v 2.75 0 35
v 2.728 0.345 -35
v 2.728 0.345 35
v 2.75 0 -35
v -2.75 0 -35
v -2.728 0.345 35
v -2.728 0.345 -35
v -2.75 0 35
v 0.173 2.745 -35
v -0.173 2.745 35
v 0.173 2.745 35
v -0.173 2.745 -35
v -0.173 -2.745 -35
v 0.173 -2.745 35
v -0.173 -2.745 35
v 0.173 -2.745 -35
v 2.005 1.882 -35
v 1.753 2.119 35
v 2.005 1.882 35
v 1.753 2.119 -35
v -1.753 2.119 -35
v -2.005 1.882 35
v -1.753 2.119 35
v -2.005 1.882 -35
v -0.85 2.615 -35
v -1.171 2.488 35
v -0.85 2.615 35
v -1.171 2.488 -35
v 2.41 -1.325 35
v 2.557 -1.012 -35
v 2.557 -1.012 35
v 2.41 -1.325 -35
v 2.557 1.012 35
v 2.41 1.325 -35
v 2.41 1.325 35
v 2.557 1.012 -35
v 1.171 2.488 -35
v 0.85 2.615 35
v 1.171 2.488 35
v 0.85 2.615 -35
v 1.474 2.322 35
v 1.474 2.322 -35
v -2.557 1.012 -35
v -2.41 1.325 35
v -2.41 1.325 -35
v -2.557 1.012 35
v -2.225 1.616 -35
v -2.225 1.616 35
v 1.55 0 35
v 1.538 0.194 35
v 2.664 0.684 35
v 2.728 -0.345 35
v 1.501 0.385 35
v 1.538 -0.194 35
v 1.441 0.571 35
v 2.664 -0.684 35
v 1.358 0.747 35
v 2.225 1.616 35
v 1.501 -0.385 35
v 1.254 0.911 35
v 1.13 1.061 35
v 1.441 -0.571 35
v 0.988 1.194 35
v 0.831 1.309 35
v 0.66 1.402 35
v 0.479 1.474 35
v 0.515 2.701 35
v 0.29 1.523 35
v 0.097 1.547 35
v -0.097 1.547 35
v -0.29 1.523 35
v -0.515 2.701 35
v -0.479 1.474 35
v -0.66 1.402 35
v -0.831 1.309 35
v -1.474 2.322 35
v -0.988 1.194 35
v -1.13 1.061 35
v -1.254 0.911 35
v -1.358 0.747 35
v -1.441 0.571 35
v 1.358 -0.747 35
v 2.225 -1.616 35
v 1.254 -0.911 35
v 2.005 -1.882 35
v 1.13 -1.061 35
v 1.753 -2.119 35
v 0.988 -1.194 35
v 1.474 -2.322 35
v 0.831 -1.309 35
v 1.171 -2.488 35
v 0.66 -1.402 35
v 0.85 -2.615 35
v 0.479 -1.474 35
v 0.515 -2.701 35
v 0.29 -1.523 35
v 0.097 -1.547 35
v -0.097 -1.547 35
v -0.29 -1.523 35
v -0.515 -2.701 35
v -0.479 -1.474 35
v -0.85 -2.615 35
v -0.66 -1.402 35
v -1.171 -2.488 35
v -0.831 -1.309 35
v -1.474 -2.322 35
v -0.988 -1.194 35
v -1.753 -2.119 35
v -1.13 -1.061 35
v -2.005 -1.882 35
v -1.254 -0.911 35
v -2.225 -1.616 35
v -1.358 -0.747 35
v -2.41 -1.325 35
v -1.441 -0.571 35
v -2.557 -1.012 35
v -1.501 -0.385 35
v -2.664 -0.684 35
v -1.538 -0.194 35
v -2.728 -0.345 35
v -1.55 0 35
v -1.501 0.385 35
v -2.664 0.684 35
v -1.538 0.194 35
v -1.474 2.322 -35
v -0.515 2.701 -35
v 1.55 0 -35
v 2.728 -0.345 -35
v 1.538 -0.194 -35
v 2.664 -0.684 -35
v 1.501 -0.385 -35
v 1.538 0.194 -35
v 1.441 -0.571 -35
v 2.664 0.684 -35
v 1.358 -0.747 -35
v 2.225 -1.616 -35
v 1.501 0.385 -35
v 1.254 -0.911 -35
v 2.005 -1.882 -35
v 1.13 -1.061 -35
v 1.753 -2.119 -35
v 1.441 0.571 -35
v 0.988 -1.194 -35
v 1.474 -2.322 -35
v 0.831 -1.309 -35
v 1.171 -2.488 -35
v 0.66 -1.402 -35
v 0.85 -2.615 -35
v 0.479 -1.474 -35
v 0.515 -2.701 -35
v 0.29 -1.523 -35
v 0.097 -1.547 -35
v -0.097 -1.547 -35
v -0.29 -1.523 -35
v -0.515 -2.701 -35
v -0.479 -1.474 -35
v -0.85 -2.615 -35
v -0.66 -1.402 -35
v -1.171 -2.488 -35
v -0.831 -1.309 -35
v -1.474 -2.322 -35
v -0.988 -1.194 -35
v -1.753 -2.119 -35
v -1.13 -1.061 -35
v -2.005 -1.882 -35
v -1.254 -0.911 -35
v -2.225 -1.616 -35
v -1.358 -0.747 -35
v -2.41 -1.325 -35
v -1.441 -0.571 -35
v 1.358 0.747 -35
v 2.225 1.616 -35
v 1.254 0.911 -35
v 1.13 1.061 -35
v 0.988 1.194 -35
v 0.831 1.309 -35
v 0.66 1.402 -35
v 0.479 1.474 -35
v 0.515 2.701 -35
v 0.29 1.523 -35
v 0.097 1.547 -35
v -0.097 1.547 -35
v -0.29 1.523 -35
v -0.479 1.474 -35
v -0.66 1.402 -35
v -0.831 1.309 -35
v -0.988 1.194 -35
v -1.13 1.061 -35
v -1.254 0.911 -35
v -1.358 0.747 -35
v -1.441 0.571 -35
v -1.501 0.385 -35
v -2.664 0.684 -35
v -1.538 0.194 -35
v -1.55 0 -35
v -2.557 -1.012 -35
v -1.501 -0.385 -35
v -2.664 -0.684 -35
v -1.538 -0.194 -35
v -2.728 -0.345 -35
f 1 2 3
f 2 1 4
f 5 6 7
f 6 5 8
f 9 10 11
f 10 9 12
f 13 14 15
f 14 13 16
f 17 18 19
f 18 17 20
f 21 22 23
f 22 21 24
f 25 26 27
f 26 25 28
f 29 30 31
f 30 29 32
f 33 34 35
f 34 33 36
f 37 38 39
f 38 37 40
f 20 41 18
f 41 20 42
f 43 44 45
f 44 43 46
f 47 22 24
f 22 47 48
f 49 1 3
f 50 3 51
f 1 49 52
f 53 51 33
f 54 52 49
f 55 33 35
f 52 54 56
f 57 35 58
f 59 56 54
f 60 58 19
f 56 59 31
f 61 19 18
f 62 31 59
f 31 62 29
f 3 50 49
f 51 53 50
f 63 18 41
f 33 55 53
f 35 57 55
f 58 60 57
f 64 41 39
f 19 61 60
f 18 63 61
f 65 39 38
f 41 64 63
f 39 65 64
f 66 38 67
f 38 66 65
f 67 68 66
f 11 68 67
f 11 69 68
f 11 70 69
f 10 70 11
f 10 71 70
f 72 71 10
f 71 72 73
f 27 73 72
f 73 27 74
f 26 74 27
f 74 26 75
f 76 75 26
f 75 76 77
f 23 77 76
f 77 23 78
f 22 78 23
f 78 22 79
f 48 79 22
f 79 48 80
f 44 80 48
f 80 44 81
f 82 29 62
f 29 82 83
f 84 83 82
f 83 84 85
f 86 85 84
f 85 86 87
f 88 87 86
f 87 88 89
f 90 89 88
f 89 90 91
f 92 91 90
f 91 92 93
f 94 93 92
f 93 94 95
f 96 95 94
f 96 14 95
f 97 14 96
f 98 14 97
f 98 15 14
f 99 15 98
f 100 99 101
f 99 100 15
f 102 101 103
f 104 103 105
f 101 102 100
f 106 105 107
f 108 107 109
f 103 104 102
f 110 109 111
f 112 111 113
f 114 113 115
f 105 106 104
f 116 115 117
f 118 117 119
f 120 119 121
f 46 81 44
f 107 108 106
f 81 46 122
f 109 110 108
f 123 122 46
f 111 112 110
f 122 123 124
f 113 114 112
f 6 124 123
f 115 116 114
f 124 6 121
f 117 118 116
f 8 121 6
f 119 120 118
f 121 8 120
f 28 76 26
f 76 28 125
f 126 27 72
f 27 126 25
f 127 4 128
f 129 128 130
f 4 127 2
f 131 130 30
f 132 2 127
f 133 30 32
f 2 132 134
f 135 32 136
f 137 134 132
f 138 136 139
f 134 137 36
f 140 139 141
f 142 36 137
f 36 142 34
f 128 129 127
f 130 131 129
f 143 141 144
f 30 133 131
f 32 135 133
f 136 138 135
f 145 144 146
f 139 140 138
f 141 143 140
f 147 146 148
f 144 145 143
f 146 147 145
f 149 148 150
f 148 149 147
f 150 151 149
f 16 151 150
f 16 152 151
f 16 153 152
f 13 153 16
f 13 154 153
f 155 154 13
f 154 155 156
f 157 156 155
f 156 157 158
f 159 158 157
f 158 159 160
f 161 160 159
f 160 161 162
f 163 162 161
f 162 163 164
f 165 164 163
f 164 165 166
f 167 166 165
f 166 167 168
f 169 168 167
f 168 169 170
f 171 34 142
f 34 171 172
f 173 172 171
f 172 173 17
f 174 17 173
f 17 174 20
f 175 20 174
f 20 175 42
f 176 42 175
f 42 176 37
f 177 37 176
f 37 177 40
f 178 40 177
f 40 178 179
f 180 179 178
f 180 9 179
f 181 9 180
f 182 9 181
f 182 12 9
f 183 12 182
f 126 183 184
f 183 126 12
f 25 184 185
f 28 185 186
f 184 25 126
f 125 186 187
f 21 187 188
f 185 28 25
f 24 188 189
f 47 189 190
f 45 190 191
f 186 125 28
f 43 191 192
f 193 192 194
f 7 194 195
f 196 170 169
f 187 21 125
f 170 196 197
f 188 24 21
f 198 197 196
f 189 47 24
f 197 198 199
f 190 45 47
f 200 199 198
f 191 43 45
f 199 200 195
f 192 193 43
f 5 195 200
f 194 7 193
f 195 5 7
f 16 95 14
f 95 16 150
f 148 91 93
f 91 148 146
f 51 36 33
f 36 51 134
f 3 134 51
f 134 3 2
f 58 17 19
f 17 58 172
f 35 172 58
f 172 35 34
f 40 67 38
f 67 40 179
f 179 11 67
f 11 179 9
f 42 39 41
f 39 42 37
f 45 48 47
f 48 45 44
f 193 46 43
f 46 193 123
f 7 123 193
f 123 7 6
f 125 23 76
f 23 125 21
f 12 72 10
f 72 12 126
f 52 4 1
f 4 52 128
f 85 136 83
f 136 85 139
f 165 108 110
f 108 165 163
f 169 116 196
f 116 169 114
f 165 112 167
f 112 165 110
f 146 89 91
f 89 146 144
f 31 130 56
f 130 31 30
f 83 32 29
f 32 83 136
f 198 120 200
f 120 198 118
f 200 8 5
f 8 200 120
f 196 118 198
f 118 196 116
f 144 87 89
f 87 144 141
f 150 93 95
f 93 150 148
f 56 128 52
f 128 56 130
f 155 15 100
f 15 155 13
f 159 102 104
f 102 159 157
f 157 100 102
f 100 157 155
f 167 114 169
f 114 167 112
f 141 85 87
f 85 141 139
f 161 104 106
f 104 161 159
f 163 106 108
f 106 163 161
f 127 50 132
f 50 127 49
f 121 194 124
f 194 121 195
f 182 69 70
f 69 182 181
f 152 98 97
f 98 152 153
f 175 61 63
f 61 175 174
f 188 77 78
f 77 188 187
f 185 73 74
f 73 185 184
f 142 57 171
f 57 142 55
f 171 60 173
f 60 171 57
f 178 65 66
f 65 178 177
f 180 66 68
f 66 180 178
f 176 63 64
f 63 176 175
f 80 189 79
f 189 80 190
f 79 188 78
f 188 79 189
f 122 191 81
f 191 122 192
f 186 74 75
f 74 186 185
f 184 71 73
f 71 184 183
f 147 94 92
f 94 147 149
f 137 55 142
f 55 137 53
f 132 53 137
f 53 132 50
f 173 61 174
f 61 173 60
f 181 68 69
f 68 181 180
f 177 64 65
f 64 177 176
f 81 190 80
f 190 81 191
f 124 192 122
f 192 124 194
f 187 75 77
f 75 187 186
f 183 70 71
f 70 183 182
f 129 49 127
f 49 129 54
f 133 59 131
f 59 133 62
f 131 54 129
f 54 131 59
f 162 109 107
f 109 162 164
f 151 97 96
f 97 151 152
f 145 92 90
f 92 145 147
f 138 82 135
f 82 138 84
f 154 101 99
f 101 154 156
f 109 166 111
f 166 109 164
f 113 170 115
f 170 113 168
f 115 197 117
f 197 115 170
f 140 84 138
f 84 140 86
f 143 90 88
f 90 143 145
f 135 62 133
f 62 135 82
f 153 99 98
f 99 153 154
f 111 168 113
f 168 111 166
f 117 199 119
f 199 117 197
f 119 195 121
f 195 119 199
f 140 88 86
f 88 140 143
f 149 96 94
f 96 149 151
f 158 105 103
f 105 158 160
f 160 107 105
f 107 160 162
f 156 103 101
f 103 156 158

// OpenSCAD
$fn = 50;


difference() {
	union() {
		translate(v = [0, 0, -35.0000000000]) {
			cylinder(h = 70, r = 2.7500000000);
		}
	}
	union() {
		translate(v = [0, 0, -100.0000000000]) {
			cylinder(h = 200, r = 1.5500000000);
		}
	}
}
